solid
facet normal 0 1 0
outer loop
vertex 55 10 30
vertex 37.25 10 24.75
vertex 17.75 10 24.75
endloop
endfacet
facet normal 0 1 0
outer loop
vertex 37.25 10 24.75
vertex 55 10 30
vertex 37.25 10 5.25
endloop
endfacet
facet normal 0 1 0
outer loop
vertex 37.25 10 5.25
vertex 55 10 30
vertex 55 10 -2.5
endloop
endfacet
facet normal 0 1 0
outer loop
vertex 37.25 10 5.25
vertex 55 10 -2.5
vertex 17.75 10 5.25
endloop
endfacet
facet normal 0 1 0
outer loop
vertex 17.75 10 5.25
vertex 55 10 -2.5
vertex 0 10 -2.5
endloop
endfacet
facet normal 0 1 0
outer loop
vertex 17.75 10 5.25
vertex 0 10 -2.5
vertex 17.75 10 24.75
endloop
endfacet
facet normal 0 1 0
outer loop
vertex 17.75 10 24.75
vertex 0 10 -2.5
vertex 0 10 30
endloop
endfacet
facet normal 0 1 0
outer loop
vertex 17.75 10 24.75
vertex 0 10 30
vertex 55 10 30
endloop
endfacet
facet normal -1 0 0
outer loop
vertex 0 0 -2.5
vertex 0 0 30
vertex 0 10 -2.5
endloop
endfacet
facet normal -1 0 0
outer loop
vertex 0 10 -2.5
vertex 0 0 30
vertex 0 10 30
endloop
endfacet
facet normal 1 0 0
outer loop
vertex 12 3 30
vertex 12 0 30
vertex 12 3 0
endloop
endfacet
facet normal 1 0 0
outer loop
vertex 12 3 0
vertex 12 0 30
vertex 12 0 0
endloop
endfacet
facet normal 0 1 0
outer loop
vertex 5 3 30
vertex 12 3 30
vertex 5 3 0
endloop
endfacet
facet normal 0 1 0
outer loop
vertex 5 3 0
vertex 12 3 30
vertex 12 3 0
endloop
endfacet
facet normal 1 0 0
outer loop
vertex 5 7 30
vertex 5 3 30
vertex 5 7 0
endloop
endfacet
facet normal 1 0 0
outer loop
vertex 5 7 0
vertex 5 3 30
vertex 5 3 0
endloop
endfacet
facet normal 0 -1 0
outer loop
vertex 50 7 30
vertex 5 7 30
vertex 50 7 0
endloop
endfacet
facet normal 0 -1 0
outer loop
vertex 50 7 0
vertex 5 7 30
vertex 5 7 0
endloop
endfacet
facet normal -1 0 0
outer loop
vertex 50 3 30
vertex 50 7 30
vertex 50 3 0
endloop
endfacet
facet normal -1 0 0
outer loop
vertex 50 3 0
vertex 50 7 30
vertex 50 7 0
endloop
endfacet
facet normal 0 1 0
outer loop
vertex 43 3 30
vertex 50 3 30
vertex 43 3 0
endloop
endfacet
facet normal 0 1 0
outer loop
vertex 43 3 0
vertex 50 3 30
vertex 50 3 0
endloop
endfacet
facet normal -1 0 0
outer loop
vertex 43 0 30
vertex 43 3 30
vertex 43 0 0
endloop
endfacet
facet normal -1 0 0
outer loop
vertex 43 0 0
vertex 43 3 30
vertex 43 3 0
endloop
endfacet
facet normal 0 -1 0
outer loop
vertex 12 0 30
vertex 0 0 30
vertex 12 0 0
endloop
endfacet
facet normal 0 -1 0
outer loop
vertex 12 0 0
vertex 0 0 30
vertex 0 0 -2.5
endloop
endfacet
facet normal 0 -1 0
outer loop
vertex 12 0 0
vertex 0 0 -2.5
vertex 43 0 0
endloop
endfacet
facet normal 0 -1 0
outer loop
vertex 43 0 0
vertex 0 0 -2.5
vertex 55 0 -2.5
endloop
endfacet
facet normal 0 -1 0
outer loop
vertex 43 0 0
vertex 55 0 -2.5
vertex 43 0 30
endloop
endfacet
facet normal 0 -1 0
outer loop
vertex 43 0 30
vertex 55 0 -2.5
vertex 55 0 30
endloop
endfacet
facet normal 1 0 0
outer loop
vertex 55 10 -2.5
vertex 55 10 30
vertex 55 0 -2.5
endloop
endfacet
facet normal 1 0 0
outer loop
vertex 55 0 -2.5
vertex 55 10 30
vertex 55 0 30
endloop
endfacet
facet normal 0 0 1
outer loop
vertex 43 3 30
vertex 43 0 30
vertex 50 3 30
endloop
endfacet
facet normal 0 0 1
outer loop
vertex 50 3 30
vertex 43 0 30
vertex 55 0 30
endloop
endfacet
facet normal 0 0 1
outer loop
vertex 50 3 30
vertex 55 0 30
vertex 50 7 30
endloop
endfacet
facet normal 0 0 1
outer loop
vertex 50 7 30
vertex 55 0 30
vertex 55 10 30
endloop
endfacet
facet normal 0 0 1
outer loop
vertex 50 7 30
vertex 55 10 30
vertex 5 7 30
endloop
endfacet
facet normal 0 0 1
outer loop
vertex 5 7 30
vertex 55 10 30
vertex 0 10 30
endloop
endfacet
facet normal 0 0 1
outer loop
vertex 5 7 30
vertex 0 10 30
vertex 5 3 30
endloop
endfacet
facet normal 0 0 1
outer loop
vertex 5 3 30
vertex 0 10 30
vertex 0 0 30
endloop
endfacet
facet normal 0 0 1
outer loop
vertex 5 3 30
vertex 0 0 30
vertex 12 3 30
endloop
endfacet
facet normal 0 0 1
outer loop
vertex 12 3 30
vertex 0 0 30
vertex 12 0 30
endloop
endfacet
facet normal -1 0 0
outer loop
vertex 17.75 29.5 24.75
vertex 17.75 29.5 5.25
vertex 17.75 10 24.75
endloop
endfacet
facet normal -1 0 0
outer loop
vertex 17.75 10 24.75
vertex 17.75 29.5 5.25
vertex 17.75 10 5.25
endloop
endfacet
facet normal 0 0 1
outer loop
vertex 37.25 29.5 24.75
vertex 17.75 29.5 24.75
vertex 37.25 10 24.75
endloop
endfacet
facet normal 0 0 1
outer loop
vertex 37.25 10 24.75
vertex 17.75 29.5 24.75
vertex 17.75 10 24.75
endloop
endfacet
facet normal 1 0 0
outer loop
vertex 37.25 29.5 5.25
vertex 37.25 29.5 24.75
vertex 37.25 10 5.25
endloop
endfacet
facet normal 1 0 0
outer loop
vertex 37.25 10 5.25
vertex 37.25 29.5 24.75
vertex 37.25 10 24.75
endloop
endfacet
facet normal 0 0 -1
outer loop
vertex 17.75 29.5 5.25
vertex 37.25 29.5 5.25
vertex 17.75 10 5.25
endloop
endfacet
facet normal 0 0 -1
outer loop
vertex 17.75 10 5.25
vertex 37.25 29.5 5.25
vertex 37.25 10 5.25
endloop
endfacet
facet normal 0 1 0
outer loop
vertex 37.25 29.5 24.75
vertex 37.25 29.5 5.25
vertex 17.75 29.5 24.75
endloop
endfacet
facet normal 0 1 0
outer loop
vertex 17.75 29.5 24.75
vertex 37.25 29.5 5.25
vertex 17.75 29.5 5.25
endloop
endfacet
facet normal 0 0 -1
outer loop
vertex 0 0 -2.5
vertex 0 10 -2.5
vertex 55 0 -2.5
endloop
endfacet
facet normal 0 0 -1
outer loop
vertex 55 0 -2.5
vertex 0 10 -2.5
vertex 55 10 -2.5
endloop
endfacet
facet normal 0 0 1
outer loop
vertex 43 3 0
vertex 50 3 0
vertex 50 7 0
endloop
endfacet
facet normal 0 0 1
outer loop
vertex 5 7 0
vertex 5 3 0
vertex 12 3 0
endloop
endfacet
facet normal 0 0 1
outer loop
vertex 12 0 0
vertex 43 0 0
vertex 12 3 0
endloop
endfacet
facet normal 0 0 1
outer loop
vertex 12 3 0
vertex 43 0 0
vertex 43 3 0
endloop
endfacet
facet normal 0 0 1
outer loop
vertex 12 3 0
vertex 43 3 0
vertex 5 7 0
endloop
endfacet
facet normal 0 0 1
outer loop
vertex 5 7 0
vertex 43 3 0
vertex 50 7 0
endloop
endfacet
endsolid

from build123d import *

# Parameters (mm, degrees)
BOSS_EXTRUDE1_DEPTH = 30
SKETCH2_W           = 19.5
SKETCH2_H           = 19.5
BOSS_EXTRUDE2_DEPTH = 19.5
SKETCH3_W           = 55
SKETCH3_H           = 10
BOSS_EXTRUDE3_DEPTH = 2.5


with BuildPart() as part:
    # Sketch1 → Boss-Extrude1 (new body)
    with BuildSketch(Plane.XY):
        Polygon((12, 0), (12, 3), (5, 3), (5, 7), (50, 7), (50, 3), (43, 3), (43, 0), (55, 0), (55, 10), (0, 10), (0, 0), align=None)
    extrude(amount=BOSS_EXTRUDE1_DEPTH)

    # Sketch2 → Boss-Extrude2 (add)
    with BuildSketch(Plane(origin=(0, 10, 0), x_dir=(1, 0, 0), z_dir=(0, 1, 0))):
        with Locations((27.5, -15)):
            Rectangle(SKETCH2_W, SKETCH2_H)
    extrude(amount=BOSS_EXTRUDE2_DEPTH)

    # Sketch3 → Boss-Extrude3 (add)
    with BuildSketch(Plane(origin=(0, 0, 0), x_dir=(-1, 0, 0), z_dir=(0, 0, -1))):
        with Locations((-27.5, 5)):
            Rectangle(SKETCH3_W, SKETCH3_H)
    extrude(amount=BOSS_EXTRUDE3_DEPTH)


solid = part.part
